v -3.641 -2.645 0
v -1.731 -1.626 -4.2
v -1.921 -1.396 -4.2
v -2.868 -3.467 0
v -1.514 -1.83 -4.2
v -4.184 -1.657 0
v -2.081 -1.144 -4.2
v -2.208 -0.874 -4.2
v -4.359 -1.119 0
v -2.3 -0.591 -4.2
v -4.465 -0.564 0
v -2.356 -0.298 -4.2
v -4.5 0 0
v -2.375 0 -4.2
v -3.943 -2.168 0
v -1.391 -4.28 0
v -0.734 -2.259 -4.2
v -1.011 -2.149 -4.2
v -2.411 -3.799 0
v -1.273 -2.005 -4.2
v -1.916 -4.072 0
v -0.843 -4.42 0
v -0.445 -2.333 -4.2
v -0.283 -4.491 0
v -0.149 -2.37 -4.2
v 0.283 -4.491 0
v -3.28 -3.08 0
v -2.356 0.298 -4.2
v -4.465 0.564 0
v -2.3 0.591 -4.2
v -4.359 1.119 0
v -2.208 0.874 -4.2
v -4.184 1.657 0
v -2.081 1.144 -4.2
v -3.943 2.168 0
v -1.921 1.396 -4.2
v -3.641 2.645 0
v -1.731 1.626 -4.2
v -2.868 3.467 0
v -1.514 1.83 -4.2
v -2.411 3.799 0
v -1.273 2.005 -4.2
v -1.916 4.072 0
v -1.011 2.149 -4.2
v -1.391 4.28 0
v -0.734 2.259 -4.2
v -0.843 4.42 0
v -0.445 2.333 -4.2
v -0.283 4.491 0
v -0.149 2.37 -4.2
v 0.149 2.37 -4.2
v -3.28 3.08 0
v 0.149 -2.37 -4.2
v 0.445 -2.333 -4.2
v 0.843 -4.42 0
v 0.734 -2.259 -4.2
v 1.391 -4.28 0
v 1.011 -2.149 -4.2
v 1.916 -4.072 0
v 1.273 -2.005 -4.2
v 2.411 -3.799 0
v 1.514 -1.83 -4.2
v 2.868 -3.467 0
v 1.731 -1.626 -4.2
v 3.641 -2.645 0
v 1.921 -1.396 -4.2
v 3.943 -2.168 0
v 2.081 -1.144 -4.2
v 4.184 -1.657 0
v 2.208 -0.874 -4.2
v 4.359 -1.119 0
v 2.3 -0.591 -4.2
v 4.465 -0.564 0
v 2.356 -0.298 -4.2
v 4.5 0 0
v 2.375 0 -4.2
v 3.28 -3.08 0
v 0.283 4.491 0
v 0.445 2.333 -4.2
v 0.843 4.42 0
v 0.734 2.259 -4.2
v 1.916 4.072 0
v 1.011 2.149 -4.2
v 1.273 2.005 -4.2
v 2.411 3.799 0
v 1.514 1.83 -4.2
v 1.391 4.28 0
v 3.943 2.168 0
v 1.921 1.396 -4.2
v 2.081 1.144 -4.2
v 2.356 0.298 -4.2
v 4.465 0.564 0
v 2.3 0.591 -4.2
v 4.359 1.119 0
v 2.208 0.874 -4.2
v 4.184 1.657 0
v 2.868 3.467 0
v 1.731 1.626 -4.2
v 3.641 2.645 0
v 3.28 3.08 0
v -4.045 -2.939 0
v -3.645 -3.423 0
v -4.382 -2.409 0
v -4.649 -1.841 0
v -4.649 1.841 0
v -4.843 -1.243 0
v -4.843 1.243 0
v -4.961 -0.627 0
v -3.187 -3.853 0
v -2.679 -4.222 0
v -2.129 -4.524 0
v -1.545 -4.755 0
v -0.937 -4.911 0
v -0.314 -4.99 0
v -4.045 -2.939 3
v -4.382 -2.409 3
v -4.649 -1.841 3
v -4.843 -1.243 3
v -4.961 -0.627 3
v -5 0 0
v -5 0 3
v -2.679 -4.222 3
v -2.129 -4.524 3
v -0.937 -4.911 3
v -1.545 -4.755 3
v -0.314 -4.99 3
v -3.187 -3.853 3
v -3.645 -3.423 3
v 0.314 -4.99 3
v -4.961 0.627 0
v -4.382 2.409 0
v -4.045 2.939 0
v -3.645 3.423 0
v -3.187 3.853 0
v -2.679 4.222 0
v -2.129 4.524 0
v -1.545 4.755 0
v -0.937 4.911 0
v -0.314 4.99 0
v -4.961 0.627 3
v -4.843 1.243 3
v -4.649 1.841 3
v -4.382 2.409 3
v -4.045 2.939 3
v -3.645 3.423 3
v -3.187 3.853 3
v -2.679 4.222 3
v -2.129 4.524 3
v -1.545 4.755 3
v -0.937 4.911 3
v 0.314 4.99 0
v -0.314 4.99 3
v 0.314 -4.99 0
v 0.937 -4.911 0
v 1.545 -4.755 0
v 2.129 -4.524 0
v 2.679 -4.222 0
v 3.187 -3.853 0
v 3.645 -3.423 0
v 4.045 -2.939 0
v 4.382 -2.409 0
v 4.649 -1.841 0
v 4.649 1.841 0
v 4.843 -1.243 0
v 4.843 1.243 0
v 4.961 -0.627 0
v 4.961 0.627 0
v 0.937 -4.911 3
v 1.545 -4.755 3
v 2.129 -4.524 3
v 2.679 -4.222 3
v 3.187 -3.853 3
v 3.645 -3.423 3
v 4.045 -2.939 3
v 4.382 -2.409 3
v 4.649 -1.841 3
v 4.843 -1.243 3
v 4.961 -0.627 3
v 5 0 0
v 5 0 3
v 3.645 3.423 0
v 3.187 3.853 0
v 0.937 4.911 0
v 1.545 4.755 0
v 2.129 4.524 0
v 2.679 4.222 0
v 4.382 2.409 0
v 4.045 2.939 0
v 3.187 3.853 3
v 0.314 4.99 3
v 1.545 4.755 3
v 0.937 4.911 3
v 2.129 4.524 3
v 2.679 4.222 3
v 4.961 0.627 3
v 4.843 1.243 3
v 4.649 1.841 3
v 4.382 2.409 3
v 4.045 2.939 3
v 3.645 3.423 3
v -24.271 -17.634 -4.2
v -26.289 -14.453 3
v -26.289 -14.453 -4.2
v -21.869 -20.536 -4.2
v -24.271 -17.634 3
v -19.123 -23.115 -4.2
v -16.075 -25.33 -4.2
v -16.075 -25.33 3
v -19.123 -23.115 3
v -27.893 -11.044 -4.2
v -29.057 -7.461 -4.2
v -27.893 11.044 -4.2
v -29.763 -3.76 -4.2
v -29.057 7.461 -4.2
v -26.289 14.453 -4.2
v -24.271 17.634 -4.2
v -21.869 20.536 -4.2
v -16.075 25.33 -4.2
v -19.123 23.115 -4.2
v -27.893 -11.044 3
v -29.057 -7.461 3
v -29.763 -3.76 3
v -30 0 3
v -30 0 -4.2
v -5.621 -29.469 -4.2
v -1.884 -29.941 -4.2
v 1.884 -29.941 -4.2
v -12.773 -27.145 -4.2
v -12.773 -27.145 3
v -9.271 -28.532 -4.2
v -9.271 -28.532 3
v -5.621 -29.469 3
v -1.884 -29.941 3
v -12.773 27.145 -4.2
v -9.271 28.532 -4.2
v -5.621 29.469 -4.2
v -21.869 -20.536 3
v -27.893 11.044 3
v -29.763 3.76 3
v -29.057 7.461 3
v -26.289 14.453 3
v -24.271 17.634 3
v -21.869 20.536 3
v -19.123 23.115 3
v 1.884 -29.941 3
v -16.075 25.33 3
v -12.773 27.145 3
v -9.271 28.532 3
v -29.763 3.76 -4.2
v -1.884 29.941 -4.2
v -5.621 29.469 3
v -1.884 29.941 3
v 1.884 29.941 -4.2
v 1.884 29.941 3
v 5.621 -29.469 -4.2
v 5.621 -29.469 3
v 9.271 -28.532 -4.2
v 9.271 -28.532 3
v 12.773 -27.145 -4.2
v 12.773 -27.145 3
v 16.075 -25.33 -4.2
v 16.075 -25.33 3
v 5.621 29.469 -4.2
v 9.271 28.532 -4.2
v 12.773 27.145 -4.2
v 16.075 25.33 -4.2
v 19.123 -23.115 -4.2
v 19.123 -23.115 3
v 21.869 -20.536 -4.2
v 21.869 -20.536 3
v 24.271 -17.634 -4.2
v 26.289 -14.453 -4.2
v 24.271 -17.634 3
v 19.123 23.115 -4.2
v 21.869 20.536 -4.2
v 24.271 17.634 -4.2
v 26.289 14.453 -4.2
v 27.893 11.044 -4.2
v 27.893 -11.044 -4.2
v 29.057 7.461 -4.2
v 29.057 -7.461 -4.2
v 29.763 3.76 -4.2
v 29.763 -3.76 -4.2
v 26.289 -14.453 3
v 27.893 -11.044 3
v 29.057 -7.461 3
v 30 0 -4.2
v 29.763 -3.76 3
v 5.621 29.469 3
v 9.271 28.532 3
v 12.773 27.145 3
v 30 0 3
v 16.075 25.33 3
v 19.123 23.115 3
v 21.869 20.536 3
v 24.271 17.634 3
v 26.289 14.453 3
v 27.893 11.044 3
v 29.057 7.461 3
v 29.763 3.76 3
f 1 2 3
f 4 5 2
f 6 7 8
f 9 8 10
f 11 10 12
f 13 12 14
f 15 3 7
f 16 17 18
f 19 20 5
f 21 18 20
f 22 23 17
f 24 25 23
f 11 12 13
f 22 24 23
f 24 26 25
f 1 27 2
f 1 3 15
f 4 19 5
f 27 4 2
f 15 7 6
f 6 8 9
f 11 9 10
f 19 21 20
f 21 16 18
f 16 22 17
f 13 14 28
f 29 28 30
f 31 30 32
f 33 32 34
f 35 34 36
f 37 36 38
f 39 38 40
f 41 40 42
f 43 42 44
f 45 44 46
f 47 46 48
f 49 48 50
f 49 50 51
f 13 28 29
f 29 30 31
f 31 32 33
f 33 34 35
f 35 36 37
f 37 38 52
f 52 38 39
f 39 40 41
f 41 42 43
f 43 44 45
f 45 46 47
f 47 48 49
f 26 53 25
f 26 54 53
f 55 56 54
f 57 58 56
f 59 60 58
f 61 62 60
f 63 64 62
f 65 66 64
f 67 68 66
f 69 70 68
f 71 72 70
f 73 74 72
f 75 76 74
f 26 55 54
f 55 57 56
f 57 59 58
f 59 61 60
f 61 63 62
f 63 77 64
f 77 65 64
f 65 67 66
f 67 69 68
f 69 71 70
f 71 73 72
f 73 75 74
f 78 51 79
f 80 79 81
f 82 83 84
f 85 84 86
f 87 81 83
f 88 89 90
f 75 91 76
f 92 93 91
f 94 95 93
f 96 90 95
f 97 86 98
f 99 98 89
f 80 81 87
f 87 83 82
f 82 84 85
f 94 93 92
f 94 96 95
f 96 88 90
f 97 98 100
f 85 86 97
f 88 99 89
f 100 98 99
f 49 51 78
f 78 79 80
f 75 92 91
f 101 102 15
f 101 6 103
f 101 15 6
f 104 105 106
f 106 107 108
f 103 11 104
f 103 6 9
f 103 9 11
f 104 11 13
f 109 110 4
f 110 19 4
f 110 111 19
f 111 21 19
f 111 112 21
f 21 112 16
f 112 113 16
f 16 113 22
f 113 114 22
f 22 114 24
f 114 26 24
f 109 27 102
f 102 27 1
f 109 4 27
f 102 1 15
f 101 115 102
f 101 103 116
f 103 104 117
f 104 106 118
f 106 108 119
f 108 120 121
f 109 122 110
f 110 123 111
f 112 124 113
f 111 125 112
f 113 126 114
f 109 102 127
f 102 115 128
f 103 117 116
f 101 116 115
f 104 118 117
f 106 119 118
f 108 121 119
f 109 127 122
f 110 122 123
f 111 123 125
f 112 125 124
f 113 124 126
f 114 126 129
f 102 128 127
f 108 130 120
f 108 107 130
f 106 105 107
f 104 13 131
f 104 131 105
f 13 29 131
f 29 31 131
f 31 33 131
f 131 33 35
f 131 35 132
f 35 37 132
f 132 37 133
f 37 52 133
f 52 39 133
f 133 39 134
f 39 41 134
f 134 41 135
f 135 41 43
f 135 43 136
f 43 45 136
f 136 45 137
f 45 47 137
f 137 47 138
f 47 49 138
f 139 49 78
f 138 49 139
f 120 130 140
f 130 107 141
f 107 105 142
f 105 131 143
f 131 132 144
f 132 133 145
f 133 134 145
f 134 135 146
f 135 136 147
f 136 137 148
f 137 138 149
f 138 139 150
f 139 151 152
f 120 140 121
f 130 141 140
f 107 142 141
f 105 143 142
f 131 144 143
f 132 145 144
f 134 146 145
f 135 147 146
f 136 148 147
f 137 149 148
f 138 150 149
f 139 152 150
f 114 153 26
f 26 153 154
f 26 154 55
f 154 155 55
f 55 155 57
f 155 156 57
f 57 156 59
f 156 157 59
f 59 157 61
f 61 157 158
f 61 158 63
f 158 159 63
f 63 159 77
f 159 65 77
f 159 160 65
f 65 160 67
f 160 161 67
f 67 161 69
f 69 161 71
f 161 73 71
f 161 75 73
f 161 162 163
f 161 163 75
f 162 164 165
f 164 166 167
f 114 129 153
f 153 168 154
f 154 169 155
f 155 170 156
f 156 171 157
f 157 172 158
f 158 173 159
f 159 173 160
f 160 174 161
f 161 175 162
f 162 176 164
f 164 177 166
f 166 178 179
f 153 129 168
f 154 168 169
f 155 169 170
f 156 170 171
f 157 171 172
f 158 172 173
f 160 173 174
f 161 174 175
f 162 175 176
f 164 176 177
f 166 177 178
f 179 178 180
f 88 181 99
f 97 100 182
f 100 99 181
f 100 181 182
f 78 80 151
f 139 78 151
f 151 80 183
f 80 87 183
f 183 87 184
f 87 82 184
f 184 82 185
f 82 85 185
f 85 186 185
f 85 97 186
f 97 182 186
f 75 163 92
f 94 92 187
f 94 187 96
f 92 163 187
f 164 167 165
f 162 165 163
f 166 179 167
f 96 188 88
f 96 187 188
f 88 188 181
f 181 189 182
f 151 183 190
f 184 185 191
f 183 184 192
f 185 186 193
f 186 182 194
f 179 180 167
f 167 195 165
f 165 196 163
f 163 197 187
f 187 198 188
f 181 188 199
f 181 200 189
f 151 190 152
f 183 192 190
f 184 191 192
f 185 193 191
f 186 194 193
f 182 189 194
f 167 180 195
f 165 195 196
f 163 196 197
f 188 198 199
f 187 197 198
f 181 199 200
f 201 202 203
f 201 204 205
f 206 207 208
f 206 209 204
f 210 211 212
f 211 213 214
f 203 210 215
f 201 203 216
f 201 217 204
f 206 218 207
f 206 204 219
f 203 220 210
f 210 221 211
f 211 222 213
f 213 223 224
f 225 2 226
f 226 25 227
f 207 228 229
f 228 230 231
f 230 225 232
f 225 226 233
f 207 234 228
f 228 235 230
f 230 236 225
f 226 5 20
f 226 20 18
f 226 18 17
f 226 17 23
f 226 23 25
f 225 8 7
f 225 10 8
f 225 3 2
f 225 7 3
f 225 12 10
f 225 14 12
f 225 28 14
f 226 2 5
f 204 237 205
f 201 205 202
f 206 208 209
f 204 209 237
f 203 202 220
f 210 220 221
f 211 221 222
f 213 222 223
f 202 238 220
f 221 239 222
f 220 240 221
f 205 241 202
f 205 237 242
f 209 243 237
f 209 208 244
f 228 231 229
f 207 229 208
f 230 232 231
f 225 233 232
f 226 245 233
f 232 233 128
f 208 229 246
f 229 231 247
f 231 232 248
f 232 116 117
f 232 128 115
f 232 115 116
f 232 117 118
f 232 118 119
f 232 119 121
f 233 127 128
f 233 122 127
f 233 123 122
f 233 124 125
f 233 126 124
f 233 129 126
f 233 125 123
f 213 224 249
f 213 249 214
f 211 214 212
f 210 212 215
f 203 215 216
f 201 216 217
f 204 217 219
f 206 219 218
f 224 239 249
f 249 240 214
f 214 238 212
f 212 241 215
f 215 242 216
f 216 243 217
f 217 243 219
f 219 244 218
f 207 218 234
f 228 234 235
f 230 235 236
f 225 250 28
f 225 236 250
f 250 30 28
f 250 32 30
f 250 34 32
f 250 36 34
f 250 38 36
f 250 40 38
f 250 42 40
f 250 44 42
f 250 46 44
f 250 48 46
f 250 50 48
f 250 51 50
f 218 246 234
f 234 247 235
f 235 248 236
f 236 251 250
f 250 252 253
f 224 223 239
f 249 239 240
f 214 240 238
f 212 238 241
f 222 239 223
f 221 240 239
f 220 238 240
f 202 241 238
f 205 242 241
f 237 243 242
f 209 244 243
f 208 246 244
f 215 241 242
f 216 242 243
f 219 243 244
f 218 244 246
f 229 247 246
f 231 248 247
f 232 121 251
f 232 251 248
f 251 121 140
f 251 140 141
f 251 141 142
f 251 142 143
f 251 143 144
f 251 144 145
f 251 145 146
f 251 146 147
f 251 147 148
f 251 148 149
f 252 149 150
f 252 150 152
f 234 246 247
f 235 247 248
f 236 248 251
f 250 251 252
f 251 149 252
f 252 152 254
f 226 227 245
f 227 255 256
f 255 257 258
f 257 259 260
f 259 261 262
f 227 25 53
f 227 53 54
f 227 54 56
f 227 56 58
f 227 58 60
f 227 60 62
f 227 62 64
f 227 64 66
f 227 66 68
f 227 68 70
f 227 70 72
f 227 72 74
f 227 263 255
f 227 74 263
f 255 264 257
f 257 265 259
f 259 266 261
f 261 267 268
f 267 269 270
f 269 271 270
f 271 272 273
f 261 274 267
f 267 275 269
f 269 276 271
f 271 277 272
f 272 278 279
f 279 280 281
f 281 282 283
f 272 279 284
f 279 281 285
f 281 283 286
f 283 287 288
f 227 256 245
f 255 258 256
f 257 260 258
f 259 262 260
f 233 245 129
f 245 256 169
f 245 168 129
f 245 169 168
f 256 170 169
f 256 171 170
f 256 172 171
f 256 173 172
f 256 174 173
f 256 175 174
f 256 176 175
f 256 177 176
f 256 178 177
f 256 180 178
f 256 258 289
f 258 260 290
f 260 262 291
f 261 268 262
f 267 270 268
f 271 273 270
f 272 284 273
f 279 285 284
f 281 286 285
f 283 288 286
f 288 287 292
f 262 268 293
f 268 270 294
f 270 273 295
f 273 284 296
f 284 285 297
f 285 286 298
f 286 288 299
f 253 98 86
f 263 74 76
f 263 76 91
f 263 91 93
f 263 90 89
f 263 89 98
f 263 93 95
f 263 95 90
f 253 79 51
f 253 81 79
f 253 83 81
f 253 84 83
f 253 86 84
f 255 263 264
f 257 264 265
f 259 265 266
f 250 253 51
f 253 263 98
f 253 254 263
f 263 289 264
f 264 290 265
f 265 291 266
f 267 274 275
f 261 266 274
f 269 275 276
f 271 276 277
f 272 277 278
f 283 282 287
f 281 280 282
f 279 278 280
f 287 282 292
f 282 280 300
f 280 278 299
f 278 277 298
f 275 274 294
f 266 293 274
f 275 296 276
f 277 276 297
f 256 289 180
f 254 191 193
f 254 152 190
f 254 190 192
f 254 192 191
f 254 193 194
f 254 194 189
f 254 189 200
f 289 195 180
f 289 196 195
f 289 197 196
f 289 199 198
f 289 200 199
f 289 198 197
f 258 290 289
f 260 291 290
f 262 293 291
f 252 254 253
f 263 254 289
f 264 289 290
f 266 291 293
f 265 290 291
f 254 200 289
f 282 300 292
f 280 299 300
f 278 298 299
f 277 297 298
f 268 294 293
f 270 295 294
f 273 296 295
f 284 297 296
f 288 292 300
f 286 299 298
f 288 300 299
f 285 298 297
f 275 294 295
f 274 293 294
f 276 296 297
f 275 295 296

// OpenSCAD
$fn = 50;


difference() {
	union() {
		translate(v = [0, 0, -4.2000000000]) {
			cylinder(h = 7.2000000000, r = 30.0000000000);
		}
	}
	union() {
		translate(v = [0, 0, 0]) {
			rotate(a = [0, 0, 0]) {
				difference() {
					union() {
						translate(v = [0, 0, -7.2000000000]) {
							cylinder(h = 7.2000000000, r = 2.2500000000);
						}
						translate(v = [0, 0, -4.2000000000]) {
							cylinder(h = 4.2000000000, r1 = 2.3750000000, r2 = 4.5000000000);
						}
						translate(v = [0, 0, -7.2000000000]) {
							cylinder(h = 7.2000000000, r = 2.3750000000);
						}
						translate(v = [0, 0, -7.2000000000]) {
							cylinder(h = 7.2000000000, r = 2.2500000000);
						}
					}
					union();
				}
			}
		}
		#cylinder(h = 3, r = 5.0000000000);
	}
}
